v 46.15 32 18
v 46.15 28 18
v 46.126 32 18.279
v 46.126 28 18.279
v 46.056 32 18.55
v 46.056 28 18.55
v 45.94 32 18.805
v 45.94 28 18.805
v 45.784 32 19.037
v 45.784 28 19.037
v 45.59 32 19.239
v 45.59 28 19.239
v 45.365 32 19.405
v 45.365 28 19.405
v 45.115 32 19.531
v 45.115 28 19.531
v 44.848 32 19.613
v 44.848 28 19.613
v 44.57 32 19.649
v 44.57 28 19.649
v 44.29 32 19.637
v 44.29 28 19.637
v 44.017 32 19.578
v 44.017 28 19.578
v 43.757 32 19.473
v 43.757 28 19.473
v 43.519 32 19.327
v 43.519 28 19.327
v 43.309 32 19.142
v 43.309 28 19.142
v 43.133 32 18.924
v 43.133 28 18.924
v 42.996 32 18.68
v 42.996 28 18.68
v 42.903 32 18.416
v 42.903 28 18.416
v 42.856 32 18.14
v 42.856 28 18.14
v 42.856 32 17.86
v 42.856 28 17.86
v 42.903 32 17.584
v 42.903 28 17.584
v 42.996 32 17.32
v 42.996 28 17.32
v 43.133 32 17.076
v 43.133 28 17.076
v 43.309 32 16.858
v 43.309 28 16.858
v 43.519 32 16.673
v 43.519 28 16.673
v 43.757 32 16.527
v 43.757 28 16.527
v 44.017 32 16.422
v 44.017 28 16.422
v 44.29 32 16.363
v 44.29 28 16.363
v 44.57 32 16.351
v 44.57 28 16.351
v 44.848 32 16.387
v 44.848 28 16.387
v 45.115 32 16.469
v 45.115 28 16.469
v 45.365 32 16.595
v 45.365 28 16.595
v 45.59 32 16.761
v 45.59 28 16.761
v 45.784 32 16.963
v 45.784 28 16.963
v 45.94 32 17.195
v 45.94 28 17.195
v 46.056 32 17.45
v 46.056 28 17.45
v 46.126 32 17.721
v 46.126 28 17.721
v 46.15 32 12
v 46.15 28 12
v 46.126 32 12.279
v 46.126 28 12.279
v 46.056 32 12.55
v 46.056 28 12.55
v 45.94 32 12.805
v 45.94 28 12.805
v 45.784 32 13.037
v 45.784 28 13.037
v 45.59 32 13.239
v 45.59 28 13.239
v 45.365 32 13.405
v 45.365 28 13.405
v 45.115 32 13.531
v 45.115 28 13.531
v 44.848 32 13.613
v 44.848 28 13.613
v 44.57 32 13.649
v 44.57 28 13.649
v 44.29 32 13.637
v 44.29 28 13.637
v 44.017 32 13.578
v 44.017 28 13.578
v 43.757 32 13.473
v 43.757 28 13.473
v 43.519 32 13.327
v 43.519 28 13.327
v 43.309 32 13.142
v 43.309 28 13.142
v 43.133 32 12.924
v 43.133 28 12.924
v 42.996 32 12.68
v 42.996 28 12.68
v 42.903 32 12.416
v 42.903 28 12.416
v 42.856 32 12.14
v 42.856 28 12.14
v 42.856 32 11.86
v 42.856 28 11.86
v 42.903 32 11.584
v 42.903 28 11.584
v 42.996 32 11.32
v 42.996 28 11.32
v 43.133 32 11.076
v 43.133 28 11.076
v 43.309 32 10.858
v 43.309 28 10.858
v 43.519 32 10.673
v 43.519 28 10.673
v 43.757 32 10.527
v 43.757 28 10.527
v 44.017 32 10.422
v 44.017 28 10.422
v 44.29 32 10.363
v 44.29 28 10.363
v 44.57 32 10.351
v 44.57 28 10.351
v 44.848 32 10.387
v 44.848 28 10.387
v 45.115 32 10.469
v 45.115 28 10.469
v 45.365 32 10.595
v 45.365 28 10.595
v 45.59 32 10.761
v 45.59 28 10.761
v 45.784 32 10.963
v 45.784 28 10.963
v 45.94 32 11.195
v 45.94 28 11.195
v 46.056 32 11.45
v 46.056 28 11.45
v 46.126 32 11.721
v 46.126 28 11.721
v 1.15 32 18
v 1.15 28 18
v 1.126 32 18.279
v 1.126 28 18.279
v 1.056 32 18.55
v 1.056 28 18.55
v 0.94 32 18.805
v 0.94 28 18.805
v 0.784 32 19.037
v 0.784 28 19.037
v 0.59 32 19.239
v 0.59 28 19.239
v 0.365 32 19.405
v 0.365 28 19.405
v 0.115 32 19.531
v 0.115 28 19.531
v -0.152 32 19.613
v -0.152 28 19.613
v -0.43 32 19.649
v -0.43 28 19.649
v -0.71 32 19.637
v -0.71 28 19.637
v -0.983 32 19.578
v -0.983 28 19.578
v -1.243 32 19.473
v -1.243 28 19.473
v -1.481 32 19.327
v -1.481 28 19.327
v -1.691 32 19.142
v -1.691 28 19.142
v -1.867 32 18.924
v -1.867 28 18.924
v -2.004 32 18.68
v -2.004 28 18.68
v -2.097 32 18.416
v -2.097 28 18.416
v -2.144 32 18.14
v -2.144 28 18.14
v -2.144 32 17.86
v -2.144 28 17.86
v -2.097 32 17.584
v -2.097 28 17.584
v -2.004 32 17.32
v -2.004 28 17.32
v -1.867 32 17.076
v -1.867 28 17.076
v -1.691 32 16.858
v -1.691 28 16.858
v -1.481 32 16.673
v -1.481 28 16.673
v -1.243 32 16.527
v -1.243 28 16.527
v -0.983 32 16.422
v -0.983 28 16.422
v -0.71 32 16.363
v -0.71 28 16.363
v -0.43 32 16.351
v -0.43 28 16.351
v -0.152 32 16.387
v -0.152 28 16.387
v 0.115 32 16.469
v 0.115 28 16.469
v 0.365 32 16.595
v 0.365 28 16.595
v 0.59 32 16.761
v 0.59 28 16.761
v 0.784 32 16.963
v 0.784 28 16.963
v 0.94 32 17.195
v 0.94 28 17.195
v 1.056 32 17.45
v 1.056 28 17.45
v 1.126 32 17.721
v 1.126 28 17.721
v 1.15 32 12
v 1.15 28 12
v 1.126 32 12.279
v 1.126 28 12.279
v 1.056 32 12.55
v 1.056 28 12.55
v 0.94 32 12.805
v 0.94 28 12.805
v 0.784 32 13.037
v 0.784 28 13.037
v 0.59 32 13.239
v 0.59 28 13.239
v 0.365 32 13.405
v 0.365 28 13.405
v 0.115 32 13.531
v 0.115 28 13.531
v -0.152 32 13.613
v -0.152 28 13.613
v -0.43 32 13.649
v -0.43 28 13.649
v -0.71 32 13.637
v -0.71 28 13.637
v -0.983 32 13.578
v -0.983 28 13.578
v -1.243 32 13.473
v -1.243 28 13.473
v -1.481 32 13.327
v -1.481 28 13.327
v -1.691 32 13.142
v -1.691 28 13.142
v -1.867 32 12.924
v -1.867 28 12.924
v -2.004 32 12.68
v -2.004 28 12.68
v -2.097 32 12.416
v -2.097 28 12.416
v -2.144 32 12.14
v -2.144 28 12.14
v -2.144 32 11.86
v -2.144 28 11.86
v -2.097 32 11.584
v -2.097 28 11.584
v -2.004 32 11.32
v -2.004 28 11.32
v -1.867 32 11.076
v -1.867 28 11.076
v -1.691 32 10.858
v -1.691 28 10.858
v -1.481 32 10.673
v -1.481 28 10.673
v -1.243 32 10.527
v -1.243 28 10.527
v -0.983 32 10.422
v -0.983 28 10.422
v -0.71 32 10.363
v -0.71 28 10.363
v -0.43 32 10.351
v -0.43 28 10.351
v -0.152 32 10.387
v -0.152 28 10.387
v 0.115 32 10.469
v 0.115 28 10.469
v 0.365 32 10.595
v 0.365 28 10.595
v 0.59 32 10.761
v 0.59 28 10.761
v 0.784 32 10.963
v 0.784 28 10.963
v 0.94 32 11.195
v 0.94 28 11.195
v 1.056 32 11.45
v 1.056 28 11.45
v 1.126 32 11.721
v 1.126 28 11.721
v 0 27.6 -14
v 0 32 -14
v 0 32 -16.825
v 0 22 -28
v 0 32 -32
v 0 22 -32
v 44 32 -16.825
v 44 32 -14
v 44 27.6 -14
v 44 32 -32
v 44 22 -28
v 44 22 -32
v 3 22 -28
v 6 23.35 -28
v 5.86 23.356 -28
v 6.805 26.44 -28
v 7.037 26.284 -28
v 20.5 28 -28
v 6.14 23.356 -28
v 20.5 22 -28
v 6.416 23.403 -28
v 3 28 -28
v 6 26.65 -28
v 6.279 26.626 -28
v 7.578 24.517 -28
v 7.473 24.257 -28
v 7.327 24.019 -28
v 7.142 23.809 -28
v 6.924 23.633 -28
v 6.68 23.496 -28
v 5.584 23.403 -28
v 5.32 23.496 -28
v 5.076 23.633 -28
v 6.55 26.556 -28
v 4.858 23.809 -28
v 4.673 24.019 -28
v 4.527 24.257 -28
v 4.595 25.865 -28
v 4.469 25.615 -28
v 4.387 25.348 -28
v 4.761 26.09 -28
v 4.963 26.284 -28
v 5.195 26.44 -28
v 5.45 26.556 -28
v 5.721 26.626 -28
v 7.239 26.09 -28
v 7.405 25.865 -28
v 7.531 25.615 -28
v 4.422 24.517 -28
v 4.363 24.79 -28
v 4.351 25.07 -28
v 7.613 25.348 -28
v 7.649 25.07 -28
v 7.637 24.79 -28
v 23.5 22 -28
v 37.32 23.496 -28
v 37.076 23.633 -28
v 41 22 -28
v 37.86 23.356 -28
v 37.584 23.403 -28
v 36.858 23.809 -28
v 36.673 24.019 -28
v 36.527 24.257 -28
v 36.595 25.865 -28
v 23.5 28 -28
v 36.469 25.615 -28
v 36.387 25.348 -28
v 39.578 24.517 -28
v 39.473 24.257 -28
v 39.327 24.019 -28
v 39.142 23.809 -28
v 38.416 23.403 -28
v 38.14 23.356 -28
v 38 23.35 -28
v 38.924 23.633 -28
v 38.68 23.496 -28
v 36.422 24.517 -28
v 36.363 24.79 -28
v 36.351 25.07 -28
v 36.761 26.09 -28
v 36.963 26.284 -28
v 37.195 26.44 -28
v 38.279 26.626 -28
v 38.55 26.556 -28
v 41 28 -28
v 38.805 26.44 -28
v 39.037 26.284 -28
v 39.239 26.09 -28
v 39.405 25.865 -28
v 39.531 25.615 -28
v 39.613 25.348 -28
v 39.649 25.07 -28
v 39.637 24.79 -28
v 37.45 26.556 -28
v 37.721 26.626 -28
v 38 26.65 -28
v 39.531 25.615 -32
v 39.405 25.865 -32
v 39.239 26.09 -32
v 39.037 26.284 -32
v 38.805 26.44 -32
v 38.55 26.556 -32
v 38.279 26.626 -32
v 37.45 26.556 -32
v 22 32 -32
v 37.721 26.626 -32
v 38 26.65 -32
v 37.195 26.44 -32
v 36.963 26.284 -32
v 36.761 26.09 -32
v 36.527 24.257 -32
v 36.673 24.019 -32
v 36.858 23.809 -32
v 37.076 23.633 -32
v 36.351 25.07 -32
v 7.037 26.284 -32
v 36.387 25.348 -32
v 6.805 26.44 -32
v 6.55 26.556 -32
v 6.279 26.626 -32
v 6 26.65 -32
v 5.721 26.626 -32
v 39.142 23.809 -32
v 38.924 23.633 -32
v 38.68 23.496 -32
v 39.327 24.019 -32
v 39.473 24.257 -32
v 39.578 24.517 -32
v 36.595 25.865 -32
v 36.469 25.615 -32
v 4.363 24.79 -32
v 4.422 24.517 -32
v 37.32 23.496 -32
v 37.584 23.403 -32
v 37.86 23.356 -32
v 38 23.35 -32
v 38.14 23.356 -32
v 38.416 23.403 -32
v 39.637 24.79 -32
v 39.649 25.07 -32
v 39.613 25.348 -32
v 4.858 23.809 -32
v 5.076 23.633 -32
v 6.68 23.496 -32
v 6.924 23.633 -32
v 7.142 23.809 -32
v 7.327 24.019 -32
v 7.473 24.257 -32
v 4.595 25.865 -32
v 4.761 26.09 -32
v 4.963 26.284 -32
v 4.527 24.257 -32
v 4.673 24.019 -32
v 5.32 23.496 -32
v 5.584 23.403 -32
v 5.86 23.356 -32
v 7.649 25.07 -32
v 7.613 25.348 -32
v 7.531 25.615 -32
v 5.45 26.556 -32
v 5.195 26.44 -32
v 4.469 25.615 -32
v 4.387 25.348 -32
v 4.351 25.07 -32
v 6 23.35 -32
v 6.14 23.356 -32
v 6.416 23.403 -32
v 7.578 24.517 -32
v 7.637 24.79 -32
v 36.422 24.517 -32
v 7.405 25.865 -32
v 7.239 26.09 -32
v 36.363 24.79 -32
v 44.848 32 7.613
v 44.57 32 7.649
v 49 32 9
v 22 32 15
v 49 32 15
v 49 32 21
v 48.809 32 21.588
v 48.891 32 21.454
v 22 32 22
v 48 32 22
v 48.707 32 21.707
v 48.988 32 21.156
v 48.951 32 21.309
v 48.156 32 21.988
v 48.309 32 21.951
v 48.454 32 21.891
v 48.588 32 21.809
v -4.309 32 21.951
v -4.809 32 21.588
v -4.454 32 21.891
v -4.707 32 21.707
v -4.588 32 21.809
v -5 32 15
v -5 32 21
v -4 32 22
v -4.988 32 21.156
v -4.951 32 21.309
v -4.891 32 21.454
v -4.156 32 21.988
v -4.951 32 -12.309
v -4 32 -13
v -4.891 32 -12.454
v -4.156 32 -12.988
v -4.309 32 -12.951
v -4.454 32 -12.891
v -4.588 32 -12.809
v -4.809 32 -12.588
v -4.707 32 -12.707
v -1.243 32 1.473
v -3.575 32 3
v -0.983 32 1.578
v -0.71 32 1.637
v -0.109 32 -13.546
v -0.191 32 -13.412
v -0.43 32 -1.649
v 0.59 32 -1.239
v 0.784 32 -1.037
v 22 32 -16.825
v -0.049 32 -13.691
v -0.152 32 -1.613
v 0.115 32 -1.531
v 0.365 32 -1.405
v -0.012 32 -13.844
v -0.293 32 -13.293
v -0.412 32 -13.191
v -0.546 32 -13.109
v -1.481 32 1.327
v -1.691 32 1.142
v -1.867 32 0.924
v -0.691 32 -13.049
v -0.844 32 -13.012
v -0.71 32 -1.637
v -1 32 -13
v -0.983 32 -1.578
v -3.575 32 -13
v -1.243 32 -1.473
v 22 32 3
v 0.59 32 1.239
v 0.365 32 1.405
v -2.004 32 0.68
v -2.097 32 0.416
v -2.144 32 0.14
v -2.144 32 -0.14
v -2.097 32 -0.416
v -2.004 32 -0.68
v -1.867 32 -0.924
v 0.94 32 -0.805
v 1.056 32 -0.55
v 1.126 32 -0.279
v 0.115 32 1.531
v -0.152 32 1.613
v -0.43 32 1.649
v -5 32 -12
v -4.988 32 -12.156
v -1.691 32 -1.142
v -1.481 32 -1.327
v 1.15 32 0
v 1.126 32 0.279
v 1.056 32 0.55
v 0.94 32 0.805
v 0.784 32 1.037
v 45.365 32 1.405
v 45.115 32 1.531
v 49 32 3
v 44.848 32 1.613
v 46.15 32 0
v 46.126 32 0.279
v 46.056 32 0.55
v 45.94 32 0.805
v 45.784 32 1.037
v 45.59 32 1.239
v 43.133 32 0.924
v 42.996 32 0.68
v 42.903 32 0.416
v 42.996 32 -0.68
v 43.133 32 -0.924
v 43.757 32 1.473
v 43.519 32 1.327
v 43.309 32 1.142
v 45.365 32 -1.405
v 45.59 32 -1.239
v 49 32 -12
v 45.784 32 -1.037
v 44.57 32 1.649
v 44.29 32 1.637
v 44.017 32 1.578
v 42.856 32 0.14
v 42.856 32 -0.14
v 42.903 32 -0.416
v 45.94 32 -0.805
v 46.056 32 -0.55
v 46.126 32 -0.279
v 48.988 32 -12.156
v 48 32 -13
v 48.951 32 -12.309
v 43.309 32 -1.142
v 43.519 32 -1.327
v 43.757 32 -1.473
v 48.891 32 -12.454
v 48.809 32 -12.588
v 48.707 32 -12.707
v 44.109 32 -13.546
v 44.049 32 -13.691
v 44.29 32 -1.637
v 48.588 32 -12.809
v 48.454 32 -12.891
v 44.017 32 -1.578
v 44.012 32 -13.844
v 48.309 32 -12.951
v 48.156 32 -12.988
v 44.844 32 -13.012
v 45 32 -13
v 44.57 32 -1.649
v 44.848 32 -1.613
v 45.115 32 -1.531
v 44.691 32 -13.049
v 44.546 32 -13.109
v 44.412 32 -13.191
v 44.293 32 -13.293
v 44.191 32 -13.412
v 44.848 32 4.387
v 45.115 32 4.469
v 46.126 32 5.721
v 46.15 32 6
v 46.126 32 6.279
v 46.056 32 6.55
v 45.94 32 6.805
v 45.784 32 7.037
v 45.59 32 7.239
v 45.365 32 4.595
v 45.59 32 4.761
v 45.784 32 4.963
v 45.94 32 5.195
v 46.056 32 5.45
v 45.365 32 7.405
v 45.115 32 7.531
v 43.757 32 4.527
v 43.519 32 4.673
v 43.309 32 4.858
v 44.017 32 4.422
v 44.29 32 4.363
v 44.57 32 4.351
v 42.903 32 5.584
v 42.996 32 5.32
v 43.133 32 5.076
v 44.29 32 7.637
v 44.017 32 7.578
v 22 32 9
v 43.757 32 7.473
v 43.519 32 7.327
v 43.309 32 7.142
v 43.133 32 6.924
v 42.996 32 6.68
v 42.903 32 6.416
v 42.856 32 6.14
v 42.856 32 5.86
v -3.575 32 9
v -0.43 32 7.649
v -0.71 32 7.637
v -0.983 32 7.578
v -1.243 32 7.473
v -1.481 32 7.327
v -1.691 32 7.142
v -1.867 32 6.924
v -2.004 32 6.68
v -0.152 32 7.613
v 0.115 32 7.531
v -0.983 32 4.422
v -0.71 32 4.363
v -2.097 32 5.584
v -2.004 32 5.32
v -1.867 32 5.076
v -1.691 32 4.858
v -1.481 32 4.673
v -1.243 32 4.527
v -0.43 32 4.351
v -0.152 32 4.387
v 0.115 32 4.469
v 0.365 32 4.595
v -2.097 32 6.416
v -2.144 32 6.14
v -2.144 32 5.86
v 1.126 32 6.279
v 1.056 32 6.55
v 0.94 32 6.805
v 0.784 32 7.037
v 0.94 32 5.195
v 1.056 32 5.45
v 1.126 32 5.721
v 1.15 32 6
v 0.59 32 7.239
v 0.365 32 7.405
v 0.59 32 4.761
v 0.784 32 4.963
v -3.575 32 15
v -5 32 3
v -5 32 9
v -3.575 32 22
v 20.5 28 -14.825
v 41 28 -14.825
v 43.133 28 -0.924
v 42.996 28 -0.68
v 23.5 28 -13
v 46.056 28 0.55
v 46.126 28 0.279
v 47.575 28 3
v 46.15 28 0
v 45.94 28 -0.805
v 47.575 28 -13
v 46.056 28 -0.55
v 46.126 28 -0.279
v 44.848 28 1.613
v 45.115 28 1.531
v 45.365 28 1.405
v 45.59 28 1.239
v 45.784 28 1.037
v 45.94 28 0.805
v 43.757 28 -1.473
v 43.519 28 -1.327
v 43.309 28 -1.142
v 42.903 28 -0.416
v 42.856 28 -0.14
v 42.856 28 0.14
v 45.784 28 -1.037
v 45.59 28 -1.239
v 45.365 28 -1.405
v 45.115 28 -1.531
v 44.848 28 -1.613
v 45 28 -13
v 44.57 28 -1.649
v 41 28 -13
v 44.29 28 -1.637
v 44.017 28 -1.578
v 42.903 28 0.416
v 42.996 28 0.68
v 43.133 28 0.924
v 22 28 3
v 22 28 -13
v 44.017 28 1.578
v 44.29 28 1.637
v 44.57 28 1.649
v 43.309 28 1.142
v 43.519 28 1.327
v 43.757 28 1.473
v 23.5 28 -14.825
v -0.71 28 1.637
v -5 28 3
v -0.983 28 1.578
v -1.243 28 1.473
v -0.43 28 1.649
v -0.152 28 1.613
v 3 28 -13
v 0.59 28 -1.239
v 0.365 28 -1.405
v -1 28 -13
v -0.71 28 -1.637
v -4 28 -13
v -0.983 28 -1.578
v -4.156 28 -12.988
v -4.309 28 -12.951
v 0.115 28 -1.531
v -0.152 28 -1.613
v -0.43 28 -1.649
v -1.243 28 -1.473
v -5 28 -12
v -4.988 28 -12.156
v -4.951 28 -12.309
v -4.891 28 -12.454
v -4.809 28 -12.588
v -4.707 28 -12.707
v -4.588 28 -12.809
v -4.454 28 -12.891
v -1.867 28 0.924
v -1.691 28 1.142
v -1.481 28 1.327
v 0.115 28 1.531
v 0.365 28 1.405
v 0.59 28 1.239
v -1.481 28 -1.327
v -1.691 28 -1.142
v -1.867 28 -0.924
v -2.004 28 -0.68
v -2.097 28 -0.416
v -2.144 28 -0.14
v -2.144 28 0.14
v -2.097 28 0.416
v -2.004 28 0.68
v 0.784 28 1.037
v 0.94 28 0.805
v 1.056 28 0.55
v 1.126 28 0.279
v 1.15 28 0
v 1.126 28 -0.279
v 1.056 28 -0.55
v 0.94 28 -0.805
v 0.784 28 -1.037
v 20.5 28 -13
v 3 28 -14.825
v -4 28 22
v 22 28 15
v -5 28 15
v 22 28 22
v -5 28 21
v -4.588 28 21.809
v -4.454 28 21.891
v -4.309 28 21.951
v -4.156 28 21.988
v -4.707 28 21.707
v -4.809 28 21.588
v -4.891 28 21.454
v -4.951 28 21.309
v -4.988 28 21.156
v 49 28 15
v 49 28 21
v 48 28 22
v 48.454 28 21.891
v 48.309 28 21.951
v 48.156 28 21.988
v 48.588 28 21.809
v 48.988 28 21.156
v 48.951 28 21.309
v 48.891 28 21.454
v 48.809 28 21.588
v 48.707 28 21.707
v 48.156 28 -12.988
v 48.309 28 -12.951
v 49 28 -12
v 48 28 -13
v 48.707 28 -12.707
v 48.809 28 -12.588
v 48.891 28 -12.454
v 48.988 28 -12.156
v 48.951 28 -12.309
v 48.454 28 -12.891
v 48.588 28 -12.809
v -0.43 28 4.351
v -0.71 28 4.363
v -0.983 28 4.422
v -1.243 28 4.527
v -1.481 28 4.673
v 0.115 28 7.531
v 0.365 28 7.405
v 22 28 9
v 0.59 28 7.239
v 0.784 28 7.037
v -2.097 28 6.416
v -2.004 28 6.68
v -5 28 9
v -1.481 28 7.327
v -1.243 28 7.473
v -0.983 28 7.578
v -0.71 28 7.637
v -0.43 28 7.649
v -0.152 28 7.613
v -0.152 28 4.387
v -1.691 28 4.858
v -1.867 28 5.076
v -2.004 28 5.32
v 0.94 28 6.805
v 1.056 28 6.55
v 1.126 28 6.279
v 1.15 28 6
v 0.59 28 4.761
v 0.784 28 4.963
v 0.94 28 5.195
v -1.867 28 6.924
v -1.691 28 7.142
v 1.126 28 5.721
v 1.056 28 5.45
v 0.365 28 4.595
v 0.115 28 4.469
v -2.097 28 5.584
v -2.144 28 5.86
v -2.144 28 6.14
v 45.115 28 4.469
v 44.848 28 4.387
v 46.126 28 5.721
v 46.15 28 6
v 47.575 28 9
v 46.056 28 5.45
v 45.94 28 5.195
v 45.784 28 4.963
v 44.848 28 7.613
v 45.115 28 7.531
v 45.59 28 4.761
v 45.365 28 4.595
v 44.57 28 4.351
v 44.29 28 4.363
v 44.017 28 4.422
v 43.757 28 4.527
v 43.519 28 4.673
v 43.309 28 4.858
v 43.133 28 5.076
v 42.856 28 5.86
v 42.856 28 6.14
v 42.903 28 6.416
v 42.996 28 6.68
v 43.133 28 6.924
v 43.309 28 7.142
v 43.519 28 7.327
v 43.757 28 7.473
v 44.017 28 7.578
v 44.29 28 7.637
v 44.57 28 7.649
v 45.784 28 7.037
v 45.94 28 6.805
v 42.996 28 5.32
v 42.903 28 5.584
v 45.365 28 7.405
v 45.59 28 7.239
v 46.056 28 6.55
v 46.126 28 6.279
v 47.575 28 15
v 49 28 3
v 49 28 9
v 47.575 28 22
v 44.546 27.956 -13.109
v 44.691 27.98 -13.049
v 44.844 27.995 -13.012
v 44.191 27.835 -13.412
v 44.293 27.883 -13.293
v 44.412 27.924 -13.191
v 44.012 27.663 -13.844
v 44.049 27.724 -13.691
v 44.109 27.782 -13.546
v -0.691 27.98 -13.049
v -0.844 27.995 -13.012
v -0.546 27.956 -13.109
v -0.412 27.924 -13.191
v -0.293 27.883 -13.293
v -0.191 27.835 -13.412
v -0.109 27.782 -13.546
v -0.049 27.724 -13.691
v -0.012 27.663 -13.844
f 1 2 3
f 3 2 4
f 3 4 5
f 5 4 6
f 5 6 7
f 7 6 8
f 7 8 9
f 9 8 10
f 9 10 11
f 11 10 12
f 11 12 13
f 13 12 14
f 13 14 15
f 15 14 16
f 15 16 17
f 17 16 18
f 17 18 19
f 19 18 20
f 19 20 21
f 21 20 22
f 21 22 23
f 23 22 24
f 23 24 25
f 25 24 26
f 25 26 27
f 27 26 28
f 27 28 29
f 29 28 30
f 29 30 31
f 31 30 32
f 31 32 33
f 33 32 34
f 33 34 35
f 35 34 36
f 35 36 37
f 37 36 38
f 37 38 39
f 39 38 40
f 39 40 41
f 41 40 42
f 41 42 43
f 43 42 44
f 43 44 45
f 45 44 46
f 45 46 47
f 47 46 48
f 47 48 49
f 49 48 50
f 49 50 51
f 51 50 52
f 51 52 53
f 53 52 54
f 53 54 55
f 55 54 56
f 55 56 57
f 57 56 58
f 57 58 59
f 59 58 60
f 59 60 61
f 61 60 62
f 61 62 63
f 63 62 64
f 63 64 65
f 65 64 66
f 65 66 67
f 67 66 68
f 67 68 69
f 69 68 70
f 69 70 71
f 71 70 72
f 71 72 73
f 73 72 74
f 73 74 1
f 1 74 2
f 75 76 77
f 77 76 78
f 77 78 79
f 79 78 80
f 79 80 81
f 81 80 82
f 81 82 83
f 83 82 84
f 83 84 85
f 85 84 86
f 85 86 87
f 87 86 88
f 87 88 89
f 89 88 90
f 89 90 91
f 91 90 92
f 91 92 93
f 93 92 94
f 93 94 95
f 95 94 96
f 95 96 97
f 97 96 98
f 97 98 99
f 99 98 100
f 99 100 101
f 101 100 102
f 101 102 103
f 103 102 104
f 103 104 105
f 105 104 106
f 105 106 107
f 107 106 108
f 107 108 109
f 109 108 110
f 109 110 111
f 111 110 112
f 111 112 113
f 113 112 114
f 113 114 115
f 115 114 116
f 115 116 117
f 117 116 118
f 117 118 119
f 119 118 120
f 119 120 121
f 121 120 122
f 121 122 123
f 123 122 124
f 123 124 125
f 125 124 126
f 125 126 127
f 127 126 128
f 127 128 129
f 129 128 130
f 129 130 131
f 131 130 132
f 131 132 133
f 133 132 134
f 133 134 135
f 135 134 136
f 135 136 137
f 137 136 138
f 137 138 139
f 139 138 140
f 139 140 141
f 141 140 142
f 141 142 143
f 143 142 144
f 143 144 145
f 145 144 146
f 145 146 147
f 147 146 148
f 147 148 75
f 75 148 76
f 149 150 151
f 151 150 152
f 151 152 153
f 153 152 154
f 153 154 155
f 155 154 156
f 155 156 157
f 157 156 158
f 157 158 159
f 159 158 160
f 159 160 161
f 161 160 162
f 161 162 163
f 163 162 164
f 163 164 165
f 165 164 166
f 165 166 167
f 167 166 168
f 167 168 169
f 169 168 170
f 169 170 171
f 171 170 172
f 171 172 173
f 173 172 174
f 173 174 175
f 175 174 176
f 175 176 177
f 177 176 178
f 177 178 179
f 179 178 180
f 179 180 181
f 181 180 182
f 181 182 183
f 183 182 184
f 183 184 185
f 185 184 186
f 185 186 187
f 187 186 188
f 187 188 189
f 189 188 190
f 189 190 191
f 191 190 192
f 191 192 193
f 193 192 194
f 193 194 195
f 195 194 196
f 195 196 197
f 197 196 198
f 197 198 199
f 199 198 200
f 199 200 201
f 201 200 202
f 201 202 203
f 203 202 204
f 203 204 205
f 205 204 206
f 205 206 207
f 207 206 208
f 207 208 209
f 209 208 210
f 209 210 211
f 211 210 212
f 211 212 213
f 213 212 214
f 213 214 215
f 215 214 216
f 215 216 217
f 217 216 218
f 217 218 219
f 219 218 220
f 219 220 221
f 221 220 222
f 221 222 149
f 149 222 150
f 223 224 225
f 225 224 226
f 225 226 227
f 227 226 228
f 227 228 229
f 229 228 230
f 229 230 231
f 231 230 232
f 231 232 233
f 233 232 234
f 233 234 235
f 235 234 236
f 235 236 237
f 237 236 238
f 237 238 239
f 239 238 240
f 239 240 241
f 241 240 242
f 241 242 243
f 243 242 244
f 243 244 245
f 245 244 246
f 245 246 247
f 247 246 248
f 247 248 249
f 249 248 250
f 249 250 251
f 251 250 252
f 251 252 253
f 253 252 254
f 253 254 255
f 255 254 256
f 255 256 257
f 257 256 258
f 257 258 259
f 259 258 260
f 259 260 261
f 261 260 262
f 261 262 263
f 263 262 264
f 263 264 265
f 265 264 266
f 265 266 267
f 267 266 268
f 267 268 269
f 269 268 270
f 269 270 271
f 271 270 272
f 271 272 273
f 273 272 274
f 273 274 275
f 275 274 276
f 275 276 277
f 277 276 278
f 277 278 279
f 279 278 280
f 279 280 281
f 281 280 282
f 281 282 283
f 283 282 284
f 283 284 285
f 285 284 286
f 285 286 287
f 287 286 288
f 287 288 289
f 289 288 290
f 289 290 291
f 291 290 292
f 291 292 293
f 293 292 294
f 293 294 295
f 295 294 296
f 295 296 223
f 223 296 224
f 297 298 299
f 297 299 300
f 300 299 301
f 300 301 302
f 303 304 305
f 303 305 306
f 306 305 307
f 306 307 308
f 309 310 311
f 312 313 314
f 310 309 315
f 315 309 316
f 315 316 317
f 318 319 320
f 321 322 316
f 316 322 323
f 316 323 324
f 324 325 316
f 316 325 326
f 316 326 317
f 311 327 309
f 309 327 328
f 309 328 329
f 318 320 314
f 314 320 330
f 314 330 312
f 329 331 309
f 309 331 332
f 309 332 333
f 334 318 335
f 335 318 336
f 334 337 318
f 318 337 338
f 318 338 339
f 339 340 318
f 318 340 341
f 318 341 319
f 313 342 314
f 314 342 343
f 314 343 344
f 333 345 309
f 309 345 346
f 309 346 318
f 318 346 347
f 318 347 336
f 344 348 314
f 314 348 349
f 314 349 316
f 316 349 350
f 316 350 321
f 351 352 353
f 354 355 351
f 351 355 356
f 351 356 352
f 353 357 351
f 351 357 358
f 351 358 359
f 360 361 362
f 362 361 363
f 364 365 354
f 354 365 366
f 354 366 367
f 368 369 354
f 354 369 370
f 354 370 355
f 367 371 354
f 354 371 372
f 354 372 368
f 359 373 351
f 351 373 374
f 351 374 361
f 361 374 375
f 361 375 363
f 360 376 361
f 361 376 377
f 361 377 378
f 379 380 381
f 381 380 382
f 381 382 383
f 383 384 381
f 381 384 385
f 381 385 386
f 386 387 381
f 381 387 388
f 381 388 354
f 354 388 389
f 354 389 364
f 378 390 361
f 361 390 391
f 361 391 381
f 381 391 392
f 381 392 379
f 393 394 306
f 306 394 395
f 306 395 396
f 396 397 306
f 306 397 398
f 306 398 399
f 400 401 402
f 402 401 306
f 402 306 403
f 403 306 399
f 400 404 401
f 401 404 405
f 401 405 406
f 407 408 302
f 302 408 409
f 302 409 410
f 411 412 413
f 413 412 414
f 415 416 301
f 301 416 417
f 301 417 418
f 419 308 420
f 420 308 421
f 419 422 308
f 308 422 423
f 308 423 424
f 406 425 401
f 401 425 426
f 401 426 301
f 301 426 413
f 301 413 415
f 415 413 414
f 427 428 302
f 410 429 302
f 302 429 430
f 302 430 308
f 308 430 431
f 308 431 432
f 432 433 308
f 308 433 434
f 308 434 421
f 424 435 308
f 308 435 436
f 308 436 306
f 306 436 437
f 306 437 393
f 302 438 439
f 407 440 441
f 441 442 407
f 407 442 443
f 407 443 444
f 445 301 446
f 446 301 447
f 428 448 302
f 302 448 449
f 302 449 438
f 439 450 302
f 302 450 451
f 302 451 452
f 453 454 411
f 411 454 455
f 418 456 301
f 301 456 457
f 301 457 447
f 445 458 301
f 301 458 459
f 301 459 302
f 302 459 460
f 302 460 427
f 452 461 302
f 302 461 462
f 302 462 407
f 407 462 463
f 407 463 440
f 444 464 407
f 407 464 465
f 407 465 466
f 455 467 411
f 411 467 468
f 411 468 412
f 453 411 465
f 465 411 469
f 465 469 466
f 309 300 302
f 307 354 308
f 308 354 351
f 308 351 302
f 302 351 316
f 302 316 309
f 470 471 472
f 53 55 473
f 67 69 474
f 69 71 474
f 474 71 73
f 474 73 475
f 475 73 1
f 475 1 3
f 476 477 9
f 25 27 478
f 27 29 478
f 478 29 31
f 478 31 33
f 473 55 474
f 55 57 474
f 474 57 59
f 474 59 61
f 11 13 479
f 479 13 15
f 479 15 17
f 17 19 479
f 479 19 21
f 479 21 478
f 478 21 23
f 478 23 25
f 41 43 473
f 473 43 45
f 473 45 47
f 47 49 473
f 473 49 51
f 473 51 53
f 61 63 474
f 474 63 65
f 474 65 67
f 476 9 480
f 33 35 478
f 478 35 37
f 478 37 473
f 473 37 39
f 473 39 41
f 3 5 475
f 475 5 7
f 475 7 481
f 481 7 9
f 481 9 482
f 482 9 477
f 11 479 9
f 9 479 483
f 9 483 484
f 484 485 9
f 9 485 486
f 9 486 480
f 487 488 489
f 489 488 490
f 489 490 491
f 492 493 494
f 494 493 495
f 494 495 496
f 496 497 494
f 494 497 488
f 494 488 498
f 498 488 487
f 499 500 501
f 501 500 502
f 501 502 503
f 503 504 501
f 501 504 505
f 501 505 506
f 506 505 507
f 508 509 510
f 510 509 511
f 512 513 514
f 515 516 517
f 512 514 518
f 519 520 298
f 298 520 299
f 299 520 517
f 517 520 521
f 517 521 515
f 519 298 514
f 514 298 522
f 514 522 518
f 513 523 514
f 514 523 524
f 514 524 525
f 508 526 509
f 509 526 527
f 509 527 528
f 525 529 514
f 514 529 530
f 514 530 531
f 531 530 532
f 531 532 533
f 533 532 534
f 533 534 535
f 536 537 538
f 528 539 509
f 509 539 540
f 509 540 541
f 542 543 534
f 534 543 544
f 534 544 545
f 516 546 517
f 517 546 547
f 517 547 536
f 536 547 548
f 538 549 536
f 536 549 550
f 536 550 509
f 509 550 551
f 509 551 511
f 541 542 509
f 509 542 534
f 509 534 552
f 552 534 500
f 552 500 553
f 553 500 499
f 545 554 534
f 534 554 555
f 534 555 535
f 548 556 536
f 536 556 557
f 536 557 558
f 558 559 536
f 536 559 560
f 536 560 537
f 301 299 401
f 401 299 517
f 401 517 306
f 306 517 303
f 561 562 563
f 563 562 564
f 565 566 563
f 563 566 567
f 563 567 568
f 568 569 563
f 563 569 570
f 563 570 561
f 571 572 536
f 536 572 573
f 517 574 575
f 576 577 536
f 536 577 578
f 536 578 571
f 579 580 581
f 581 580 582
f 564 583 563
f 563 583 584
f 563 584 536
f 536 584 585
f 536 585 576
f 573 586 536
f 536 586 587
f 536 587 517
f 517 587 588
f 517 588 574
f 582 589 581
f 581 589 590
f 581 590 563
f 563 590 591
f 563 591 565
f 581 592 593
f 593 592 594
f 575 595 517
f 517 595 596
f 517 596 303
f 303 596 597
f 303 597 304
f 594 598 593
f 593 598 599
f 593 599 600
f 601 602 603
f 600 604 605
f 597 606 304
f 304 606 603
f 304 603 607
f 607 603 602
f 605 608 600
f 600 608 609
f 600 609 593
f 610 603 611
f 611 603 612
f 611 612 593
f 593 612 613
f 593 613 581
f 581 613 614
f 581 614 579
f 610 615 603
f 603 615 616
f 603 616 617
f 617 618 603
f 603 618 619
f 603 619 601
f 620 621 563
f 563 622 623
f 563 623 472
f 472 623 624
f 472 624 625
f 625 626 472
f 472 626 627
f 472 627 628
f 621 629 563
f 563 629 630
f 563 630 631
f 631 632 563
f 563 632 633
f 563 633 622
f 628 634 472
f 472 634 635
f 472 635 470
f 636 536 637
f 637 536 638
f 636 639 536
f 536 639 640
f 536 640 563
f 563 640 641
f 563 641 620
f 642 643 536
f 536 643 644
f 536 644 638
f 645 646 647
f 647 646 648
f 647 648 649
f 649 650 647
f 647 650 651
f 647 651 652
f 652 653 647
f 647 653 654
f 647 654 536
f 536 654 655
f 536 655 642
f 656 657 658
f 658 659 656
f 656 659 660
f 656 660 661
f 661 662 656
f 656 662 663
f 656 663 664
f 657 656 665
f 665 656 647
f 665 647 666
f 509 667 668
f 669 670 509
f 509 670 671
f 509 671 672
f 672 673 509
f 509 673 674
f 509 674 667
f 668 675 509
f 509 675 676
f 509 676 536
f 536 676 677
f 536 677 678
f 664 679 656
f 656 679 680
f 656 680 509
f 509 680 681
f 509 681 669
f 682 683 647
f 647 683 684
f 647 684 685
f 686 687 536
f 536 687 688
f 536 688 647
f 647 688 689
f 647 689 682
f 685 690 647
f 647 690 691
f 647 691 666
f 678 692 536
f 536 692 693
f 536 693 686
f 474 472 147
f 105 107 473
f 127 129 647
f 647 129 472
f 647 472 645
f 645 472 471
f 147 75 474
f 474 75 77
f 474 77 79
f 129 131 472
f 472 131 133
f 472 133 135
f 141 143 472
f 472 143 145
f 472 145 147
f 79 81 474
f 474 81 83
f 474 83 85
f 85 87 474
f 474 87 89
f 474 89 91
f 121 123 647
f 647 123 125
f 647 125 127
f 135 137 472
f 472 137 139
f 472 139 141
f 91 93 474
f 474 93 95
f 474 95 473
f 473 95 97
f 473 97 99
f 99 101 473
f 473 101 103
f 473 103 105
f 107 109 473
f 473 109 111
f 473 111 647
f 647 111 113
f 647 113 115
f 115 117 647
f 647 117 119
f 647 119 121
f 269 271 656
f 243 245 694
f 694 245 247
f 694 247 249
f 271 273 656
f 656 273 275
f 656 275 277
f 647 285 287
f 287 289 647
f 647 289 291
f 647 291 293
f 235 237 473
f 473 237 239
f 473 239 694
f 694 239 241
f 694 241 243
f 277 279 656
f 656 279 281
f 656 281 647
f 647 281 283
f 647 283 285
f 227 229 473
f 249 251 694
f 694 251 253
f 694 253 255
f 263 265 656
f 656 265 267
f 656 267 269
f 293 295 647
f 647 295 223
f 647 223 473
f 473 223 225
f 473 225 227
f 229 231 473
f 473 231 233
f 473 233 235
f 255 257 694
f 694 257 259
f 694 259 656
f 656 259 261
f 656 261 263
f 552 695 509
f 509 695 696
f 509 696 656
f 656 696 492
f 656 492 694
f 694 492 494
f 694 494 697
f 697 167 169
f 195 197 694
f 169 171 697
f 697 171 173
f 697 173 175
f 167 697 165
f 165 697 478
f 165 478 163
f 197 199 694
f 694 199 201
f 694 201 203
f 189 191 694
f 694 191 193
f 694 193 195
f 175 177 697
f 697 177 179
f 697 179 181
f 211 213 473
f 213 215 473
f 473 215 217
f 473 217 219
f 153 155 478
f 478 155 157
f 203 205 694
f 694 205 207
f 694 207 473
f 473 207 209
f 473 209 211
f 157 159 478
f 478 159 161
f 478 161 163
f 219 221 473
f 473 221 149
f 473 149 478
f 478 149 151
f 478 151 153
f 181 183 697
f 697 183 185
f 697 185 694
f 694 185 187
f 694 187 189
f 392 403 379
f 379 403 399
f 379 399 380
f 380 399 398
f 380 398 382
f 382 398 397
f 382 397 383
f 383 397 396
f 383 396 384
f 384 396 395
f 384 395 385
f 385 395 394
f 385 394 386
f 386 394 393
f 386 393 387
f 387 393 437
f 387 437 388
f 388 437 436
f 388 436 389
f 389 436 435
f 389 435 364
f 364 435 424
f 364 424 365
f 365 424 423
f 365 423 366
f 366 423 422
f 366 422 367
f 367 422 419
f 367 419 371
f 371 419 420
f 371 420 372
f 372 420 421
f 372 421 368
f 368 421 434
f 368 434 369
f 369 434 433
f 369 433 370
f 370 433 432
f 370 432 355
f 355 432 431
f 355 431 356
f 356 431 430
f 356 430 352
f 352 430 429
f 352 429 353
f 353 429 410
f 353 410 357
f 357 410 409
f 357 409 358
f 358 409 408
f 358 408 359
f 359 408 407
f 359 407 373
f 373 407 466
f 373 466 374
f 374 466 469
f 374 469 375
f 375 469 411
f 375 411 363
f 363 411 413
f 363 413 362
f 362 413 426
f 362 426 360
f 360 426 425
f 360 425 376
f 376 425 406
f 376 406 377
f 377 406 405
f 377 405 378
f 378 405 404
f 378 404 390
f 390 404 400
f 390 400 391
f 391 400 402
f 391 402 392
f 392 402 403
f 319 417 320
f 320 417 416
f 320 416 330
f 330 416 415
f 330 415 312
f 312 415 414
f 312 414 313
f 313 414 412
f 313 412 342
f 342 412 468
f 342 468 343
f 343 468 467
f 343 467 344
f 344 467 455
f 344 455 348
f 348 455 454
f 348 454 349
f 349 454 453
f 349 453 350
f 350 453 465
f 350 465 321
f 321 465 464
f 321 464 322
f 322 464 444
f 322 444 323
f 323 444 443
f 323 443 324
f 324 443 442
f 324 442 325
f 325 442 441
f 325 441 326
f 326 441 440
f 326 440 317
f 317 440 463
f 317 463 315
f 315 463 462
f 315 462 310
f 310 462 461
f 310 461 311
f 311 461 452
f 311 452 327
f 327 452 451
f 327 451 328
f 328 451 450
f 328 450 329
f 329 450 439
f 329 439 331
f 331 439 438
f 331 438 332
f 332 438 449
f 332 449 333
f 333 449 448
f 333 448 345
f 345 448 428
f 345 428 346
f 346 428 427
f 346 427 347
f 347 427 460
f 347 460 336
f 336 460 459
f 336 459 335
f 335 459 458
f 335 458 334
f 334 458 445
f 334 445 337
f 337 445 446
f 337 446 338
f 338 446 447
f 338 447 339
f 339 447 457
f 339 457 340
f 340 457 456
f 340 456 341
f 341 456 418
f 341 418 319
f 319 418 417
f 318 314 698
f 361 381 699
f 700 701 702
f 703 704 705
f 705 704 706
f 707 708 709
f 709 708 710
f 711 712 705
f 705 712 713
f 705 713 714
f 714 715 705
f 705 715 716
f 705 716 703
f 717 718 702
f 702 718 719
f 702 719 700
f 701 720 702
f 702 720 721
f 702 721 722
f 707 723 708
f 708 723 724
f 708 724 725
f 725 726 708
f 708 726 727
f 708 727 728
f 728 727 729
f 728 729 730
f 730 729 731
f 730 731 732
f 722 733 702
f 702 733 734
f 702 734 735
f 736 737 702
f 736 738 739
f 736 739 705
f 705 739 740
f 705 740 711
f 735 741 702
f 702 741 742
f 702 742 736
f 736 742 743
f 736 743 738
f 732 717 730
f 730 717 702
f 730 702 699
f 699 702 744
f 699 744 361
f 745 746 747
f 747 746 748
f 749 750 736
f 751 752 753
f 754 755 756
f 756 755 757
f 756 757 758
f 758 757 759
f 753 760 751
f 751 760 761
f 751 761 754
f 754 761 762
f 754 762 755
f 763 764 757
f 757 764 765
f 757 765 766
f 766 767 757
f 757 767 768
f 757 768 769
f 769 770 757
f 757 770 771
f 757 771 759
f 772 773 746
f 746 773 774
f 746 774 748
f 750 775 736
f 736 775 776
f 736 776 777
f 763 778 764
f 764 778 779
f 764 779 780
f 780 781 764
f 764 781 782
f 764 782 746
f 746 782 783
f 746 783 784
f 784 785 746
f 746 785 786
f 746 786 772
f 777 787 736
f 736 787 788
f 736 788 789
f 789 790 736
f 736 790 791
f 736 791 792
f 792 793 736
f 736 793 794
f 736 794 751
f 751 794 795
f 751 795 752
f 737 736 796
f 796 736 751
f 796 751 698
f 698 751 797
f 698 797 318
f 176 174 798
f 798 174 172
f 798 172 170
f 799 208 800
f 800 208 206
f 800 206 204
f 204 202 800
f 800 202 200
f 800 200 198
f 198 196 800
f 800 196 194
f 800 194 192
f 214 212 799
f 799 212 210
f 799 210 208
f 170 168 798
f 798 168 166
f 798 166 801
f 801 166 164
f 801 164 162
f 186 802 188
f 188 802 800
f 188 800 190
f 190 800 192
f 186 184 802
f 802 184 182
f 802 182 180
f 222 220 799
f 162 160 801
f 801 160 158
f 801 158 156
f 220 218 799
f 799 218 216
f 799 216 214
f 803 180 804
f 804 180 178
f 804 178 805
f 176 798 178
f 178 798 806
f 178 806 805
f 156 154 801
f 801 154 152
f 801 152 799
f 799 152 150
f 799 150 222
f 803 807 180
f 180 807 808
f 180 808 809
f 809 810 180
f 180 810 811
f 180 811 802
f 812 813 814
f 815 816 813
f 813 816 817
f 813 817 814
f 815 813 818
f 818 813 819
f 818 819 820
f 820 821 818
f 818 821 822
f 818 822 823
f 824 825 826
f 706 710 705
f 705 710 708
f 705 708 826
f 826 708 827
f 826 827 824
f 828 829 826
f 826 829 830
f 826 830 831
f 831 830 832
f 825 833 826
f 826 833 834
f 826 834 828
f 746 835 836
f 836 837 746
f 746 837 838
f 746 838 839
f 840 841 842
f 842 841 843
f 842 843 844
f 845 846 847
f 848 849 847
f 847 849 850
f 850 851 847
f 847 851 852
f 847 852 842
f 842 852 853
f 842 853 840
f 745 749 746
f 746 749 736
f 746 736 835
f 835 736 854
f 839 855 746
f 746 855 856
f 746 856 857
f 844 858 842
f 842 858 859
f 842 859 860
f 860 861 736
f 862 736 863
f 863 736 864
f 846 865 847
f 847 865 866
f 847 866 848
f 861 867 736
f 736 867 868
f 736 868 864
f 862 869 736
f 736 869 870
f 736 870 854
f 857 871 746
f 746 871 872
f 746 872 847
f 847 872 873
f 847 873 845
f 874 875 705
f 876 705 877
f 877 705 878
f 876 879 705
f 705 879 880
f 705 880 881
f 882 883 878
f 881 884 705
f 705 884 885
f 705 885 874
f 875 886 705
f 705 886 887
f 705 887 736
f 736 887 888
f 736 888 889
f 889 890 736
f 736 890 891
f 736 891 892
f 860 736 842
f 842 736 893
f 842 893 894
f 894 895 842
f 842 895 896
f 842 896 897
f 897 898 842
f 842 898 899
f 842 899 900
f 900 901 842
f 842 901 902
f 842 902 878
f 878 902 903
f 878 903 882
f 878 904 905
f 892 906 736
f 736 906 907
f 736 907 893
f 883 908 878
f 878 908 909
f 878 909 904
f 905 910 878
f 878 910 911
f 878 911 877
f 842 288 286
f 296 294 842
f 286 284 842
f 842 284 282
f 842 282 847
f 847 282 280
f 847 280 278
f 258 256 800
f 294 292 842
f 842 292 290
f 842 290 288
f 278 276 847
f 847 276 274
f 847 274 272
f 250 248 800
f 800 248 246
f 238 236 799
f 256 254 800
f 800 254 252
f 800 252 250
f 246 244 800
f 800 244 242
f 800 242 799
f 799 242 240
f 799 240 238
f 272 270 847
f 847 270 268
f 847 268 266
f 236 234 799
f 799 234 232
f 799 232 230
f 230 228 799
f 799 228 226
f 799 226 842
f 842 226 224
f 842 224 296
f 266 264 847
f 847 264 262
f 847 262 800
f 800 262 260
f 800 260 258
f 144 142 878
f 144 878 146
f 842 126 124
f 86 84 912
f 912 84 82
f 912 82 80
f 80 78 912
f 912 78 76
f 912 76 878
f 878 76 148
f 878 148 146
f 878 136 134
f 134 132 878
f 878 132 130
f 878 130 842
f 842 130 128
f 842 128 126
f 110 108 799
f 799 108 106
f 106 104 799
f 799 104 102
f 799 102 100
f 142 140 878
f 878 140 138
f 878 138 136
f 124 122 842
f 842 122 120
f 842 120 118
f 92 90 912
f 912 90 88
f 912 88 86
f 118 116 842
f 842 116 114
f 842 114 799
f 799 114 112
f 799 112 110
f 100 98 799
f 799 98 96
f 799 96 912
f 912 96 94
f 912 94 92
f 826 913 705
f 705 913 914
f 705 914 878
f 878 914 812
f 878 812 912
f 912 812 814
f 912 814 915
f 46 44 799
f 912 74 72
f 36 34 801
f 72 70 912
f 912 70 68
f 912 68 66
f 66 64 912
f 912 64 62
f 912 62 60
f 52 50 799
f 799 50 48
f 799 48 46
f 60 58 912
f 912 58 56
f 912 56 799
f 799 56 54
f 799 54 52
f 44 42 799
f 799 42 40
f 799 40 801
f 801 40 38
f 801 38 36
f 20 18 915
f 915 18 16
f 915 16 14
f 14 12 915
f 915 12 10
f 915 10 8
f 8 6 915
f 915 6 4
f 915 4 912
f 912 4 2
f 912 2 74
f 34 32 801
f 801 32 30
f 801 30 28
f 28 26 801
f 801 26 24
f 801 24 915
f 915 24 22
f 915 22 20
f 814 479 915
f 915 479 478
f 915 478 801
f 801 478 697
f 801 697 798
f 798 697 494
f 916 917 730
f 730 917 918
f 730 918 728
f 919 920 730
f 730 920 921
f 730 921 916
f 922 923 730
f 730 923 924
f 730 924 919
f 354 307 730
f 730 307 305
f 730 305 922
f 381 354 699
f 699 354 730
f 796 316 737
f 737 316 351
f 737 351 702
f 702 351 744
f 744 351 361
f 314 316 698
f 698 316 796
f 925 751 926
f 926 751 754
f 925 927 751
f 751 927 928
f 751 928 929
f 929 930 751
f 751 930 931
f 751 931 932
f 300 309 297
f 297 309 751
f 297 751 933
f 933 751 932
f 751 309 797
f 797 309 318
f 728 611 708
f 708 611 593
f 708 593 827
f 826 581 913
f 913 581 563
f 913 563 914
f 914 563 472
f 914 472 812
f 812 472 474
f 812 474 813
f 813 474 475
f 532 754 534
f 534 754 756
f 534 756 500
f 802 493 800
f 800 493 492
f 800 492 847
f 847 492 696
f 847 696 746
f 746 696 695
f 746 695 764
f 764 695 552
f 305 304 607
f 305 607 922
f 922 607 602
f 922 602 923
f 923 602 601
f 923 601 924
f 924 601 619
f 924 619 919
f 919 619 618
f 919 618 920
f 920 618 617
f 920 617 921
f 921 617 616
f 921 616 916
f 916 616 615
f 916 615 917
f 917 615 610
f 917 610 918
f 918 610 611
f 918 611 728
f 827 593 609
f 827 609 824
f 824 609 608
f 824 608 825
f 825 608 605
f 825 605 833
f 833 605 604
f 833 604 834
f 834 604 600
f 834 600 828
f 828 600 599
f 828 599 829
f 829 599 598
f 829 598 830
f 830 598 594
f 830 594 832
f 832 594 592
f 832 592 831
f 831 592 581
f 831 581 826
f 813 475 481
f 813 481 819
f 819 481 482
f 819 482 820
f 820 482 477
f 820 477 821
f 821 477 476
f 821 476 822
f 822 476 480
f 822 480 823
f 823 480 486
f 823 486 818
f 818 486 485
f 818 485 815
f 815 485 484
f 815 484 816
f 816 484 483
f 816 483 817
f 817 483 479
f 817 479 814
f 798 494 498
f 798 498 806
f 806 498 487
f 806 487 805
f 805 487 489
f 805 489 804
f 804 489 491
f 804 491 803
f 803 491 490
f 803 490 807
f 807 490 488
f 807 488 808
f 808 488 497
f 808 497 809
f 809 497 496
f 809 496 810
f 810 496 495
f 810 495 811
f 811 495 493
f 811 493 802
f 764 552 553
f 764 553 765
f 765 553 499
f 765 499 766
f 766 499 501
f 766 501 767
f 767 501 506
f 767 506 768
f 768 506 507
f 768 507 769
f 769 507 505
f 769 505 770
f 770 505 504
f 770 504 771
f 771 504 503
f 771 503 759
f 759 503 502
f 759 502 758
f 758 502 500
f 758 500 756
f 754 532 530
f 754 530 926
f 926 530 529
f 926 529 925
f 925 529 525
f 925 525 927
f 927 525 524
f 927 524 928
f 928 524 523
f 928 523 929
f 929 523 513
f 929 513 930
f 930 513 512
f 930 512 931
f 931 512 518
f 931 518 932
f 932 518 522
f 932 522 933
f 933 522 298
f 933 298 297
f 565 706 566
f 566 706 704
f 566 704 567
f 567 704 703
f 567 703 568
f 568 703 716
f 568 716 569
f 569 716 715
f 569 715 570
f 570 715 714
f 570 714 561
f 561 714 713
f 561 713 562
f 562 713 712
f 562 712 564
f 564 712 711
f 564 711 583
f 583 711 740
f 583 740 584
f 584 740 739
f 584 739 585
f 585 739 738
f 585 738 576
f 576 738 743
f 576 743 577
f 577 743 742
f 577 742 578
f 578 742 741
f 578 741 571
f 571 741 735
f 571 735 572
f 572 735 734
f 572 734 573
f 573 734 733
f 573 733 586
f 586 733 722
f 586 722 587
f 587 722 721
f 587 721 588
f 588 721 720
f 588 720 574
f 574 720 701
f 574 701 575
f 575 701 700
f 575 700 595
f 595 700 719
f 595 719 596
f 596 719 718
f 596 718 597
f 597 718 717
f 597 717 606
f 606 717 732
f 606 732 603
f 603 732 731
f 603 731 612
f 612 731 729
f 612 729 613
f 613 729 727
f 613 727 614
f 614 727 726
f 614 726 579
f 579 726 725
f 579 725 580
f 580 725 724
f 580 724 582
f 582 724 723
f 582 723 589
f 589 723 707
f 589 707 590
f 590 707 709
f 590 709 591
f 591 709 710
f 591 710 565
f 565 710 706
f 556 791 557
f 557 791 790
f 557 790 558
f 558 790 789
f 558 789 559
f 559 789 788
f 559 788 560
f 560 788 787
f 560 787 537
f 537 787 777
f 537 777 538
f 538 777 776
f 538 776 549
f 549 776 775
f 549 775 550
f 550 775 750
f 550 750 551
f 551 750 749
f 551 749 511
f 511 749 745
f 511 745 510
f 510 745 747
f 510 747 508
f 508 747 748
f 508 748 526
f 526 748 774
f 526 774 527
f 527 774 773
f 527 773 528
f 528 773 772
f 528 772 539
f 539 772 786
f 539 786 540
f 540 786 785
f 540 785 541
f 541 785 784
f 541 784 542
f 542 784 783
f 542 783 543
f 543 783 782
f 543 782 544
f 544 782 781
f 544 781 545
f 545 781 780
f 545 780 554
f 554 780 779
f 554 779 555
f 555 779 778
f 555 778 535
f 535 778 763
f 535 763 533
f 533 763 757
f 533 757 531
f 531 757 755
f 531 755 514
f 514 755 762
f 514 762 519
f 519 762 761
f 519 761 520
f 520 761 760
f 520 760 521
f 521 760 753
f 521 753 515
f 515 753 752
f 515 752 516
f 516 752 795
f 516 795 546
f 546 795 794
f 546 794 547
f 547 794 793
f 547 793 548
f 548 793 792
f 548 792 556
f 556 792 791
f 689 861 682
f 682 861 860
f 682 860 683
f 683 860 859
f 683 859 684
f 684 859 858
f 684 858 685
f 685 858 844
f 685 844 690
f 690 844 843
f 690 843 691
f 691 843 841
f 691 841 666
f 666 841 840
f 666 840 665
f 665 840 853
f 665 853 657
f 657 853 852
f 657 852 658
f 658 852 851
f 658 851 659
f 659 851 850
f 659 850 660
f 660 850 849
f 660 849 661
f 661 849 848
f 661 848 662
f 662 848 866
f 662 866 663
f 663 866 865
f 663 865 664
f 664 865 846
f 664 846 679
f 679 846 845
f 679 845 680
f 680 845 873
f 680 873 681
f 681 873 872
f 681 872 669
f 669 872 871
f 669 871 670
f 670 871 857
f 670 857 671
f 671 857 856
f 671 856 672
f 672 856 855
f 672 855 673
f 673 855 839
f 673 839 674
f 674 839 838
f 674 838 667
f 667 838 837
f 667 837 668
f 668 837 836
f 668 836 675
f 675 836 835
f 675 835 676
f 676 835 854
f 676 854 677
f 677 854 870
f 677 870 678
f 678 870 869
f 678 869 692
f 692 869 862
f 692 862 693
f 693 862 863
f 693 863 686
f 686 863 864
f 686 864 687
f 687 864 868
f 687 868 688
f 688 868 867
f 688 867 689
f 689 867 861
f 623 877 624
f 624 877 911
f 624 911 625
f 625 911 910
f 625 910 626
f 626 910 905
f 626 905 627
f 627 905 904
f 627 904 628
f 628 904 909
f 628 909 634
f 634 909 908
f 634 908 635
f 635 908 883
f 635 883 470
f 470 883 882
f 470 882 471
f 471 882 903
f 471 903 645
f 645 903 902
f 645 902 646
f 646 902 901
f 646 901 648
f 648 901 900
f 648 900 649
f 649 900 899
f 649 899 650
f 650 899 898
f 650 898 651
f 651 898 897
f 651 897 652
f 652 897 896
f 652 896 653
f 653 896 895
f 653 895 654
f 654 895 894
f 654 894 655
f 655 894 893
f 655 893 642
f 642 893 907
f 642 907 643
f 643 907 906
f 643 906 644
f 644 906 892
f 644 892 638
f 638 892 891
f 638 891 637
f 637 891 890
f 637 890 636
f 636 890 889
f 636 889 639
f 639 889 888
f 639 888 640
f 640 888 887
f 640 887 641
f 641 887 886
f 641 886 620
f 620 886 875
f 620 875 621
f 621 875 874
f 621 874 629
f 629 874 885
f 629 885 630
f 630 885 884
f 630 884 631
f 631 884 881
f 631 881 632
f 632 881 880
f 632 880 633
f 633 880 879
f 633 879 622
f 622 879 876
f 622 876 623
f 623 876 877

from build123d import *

# Parameters (mm, degrees)
SKETCH1_W             = 44
SKETCH1_H             = 10
SKETCH1_R             = 1.65
BOSS_EXTRUDE1_DEPTH   = 4
SKETCH2_W             = 44
SKETCH2_H             = 4
BOSS_EXTRUDE2_DEPTH   = 50
RIB6_REACH            = 72.37
SKETCH5_WALL_W        = 158.896391108
SKETCH5_WALL_H        = 3
LPATTERN1_COUNT       = 3
LPATTERN1_PITCH       = 20.5
SKETCH7_W             = 4
SKETCH7_H             = 35
BOSS_EXTRUDE3_DEPTH   = 5
SKETCH8_W             = 4
SKETCH8_H             = 35
BOSS_EXTRUDE4_DEPTH   = 5
FILLET1_R             = 1
SKETCH9_R             = 1.65
CUT_EXTRUDE1_DEPTH    = 74.164198895
LPATTERN2_COUNT       = 4
LPATTERN2_PITCH       = 6
BODY_MOVE_COPY1_ANGLE = 90


with BuildPart() as part:
    # Sketch1 → Boss-Extrude1 (new body)
    with BuildSketch(Plane(origin=(0, 0, 0), x_dir=(1, 0, 0), z_dir=(0, 1, 0))):
        with Locations((22, 5)):
            Rectangle(SKETCH1_W, SKETCH1_H)
        with Locations(Location((38, 3, 0), (0, 0, 270))):
            Circle(SKETCH1_R, mode=Mode.SUBTRACT)
        with Locations(Location((6, 3, 0), (0, 0, 270))):
            Circle(SKETCH1_R, mode=Mode.SUBTRACT)
    extrude(amount=BOSS_EXTRUDE1_DEPTH)

    # Sketch2 → Boss-Extrude2 (add)
    with BuildSketch(Plane(origin=(0, 4, 0), x_dir=(1, 0, 0), z_dir=(0, 1, 0))):
        with Locations((22, 8)):
            Rectangle(SKETCH2_W, SKETCH2_H)
    extrude(amount=BOSS_EXTRUDE2_DEPTH)

    # Sketch5 wall → Rib6 (add, up to next)
    with BuildSketch(Plane(origin=(44, 11.5, -3), x_dir=(0, -0.928476690885, 0.371390676354), z_dir=(0, -0.371390676354, -0.928476690885)), mode=Mode.PRIVATE) as rib6_sk1:
        with Locations((0, 1.5)):
            Rectangle(SKETCH5_WALL_W, SKETCH5_WALL_H)
    rib6_tool1 = extrude(rib6_sk1.sketch, amount=RIB6_REACH, mode=Mode.PRIVATE) - part.part
    rib6 = rib6_tool1.solids().sort_by_distance((44, 11.5, -3))[0]
    add(rib6)

    # LPattern1: Rib6 ×3
    with Locations(*[(-i * LPATTERN1_PITCH, 0, 0) for i in range(1, LPATTERN1_COUNT)]):
        add(rib6)

    # Sketch7 → Boss-Extrude3 (add)
    with BuildSketch(Plane(origin=(44, 0, 0), x_dir=(0, 0, -1), z_dir=(1, 0, 0))):
        with Locations((8, 36.5)):
            Rectangle(SKETCH7_W, SKETCH7_H)
    extrude(amount=BOSS_EXTRUDE3_DEPTH)

    # Sketch8 → Boss-Extrude4 (add)
    with BuildSketch(Plane.ZY):
        with Locations((-8, 36.5)):
            Rectangle(SKETCH8_W, SKETCH8_H)
    extrude(amount=BOSS_EXTRUDE4_DEPTH)

    # Fillet1
    fillet1_edges = [part.edges().sort_by_distance(p)[0] for p in [
        (44, 19, -8),
        (49, 19, -8),
        (49, 54, -8),
        (0, 19, -8),
        (-5, 54, -8),
        (-5, 19, -8),
    ]]
    fillet(fillet1_edges, radius=FILLET1_R)

    # Sketch9 → Cut-Extrude1 (cut, through all)
    with BuildSketch(Plane.XY.offset(-6)):
        with Locations((-0.5, 32)):
            Circle(SKETCH9_R)
        with Locations((44.5, 32)):
            Circle(SKETCH9_R)
    cut_extrude1 = extrude(amount=-CUT_EXTRUDE1_DEPTH, mode=Mode.SUBTRACT)

    # LPattern2: Cut-Extrude1 ×4
    with Locations(*[(0, i * LPATTERN2_PITCH, 0) for i in range(1, LPATTERN2_COUNT)]):
        add(cut_extrude1, mode=Mode.SUBTRACT)


with BuildPart() as part_1:
    # Body-Move/Copy1: moved
    add(part.part.rotate(Axis((0, 27, -5), (1, 0, 0)), BODY_MOVE_COPY1_ANGLE))


solid = part_1.part
